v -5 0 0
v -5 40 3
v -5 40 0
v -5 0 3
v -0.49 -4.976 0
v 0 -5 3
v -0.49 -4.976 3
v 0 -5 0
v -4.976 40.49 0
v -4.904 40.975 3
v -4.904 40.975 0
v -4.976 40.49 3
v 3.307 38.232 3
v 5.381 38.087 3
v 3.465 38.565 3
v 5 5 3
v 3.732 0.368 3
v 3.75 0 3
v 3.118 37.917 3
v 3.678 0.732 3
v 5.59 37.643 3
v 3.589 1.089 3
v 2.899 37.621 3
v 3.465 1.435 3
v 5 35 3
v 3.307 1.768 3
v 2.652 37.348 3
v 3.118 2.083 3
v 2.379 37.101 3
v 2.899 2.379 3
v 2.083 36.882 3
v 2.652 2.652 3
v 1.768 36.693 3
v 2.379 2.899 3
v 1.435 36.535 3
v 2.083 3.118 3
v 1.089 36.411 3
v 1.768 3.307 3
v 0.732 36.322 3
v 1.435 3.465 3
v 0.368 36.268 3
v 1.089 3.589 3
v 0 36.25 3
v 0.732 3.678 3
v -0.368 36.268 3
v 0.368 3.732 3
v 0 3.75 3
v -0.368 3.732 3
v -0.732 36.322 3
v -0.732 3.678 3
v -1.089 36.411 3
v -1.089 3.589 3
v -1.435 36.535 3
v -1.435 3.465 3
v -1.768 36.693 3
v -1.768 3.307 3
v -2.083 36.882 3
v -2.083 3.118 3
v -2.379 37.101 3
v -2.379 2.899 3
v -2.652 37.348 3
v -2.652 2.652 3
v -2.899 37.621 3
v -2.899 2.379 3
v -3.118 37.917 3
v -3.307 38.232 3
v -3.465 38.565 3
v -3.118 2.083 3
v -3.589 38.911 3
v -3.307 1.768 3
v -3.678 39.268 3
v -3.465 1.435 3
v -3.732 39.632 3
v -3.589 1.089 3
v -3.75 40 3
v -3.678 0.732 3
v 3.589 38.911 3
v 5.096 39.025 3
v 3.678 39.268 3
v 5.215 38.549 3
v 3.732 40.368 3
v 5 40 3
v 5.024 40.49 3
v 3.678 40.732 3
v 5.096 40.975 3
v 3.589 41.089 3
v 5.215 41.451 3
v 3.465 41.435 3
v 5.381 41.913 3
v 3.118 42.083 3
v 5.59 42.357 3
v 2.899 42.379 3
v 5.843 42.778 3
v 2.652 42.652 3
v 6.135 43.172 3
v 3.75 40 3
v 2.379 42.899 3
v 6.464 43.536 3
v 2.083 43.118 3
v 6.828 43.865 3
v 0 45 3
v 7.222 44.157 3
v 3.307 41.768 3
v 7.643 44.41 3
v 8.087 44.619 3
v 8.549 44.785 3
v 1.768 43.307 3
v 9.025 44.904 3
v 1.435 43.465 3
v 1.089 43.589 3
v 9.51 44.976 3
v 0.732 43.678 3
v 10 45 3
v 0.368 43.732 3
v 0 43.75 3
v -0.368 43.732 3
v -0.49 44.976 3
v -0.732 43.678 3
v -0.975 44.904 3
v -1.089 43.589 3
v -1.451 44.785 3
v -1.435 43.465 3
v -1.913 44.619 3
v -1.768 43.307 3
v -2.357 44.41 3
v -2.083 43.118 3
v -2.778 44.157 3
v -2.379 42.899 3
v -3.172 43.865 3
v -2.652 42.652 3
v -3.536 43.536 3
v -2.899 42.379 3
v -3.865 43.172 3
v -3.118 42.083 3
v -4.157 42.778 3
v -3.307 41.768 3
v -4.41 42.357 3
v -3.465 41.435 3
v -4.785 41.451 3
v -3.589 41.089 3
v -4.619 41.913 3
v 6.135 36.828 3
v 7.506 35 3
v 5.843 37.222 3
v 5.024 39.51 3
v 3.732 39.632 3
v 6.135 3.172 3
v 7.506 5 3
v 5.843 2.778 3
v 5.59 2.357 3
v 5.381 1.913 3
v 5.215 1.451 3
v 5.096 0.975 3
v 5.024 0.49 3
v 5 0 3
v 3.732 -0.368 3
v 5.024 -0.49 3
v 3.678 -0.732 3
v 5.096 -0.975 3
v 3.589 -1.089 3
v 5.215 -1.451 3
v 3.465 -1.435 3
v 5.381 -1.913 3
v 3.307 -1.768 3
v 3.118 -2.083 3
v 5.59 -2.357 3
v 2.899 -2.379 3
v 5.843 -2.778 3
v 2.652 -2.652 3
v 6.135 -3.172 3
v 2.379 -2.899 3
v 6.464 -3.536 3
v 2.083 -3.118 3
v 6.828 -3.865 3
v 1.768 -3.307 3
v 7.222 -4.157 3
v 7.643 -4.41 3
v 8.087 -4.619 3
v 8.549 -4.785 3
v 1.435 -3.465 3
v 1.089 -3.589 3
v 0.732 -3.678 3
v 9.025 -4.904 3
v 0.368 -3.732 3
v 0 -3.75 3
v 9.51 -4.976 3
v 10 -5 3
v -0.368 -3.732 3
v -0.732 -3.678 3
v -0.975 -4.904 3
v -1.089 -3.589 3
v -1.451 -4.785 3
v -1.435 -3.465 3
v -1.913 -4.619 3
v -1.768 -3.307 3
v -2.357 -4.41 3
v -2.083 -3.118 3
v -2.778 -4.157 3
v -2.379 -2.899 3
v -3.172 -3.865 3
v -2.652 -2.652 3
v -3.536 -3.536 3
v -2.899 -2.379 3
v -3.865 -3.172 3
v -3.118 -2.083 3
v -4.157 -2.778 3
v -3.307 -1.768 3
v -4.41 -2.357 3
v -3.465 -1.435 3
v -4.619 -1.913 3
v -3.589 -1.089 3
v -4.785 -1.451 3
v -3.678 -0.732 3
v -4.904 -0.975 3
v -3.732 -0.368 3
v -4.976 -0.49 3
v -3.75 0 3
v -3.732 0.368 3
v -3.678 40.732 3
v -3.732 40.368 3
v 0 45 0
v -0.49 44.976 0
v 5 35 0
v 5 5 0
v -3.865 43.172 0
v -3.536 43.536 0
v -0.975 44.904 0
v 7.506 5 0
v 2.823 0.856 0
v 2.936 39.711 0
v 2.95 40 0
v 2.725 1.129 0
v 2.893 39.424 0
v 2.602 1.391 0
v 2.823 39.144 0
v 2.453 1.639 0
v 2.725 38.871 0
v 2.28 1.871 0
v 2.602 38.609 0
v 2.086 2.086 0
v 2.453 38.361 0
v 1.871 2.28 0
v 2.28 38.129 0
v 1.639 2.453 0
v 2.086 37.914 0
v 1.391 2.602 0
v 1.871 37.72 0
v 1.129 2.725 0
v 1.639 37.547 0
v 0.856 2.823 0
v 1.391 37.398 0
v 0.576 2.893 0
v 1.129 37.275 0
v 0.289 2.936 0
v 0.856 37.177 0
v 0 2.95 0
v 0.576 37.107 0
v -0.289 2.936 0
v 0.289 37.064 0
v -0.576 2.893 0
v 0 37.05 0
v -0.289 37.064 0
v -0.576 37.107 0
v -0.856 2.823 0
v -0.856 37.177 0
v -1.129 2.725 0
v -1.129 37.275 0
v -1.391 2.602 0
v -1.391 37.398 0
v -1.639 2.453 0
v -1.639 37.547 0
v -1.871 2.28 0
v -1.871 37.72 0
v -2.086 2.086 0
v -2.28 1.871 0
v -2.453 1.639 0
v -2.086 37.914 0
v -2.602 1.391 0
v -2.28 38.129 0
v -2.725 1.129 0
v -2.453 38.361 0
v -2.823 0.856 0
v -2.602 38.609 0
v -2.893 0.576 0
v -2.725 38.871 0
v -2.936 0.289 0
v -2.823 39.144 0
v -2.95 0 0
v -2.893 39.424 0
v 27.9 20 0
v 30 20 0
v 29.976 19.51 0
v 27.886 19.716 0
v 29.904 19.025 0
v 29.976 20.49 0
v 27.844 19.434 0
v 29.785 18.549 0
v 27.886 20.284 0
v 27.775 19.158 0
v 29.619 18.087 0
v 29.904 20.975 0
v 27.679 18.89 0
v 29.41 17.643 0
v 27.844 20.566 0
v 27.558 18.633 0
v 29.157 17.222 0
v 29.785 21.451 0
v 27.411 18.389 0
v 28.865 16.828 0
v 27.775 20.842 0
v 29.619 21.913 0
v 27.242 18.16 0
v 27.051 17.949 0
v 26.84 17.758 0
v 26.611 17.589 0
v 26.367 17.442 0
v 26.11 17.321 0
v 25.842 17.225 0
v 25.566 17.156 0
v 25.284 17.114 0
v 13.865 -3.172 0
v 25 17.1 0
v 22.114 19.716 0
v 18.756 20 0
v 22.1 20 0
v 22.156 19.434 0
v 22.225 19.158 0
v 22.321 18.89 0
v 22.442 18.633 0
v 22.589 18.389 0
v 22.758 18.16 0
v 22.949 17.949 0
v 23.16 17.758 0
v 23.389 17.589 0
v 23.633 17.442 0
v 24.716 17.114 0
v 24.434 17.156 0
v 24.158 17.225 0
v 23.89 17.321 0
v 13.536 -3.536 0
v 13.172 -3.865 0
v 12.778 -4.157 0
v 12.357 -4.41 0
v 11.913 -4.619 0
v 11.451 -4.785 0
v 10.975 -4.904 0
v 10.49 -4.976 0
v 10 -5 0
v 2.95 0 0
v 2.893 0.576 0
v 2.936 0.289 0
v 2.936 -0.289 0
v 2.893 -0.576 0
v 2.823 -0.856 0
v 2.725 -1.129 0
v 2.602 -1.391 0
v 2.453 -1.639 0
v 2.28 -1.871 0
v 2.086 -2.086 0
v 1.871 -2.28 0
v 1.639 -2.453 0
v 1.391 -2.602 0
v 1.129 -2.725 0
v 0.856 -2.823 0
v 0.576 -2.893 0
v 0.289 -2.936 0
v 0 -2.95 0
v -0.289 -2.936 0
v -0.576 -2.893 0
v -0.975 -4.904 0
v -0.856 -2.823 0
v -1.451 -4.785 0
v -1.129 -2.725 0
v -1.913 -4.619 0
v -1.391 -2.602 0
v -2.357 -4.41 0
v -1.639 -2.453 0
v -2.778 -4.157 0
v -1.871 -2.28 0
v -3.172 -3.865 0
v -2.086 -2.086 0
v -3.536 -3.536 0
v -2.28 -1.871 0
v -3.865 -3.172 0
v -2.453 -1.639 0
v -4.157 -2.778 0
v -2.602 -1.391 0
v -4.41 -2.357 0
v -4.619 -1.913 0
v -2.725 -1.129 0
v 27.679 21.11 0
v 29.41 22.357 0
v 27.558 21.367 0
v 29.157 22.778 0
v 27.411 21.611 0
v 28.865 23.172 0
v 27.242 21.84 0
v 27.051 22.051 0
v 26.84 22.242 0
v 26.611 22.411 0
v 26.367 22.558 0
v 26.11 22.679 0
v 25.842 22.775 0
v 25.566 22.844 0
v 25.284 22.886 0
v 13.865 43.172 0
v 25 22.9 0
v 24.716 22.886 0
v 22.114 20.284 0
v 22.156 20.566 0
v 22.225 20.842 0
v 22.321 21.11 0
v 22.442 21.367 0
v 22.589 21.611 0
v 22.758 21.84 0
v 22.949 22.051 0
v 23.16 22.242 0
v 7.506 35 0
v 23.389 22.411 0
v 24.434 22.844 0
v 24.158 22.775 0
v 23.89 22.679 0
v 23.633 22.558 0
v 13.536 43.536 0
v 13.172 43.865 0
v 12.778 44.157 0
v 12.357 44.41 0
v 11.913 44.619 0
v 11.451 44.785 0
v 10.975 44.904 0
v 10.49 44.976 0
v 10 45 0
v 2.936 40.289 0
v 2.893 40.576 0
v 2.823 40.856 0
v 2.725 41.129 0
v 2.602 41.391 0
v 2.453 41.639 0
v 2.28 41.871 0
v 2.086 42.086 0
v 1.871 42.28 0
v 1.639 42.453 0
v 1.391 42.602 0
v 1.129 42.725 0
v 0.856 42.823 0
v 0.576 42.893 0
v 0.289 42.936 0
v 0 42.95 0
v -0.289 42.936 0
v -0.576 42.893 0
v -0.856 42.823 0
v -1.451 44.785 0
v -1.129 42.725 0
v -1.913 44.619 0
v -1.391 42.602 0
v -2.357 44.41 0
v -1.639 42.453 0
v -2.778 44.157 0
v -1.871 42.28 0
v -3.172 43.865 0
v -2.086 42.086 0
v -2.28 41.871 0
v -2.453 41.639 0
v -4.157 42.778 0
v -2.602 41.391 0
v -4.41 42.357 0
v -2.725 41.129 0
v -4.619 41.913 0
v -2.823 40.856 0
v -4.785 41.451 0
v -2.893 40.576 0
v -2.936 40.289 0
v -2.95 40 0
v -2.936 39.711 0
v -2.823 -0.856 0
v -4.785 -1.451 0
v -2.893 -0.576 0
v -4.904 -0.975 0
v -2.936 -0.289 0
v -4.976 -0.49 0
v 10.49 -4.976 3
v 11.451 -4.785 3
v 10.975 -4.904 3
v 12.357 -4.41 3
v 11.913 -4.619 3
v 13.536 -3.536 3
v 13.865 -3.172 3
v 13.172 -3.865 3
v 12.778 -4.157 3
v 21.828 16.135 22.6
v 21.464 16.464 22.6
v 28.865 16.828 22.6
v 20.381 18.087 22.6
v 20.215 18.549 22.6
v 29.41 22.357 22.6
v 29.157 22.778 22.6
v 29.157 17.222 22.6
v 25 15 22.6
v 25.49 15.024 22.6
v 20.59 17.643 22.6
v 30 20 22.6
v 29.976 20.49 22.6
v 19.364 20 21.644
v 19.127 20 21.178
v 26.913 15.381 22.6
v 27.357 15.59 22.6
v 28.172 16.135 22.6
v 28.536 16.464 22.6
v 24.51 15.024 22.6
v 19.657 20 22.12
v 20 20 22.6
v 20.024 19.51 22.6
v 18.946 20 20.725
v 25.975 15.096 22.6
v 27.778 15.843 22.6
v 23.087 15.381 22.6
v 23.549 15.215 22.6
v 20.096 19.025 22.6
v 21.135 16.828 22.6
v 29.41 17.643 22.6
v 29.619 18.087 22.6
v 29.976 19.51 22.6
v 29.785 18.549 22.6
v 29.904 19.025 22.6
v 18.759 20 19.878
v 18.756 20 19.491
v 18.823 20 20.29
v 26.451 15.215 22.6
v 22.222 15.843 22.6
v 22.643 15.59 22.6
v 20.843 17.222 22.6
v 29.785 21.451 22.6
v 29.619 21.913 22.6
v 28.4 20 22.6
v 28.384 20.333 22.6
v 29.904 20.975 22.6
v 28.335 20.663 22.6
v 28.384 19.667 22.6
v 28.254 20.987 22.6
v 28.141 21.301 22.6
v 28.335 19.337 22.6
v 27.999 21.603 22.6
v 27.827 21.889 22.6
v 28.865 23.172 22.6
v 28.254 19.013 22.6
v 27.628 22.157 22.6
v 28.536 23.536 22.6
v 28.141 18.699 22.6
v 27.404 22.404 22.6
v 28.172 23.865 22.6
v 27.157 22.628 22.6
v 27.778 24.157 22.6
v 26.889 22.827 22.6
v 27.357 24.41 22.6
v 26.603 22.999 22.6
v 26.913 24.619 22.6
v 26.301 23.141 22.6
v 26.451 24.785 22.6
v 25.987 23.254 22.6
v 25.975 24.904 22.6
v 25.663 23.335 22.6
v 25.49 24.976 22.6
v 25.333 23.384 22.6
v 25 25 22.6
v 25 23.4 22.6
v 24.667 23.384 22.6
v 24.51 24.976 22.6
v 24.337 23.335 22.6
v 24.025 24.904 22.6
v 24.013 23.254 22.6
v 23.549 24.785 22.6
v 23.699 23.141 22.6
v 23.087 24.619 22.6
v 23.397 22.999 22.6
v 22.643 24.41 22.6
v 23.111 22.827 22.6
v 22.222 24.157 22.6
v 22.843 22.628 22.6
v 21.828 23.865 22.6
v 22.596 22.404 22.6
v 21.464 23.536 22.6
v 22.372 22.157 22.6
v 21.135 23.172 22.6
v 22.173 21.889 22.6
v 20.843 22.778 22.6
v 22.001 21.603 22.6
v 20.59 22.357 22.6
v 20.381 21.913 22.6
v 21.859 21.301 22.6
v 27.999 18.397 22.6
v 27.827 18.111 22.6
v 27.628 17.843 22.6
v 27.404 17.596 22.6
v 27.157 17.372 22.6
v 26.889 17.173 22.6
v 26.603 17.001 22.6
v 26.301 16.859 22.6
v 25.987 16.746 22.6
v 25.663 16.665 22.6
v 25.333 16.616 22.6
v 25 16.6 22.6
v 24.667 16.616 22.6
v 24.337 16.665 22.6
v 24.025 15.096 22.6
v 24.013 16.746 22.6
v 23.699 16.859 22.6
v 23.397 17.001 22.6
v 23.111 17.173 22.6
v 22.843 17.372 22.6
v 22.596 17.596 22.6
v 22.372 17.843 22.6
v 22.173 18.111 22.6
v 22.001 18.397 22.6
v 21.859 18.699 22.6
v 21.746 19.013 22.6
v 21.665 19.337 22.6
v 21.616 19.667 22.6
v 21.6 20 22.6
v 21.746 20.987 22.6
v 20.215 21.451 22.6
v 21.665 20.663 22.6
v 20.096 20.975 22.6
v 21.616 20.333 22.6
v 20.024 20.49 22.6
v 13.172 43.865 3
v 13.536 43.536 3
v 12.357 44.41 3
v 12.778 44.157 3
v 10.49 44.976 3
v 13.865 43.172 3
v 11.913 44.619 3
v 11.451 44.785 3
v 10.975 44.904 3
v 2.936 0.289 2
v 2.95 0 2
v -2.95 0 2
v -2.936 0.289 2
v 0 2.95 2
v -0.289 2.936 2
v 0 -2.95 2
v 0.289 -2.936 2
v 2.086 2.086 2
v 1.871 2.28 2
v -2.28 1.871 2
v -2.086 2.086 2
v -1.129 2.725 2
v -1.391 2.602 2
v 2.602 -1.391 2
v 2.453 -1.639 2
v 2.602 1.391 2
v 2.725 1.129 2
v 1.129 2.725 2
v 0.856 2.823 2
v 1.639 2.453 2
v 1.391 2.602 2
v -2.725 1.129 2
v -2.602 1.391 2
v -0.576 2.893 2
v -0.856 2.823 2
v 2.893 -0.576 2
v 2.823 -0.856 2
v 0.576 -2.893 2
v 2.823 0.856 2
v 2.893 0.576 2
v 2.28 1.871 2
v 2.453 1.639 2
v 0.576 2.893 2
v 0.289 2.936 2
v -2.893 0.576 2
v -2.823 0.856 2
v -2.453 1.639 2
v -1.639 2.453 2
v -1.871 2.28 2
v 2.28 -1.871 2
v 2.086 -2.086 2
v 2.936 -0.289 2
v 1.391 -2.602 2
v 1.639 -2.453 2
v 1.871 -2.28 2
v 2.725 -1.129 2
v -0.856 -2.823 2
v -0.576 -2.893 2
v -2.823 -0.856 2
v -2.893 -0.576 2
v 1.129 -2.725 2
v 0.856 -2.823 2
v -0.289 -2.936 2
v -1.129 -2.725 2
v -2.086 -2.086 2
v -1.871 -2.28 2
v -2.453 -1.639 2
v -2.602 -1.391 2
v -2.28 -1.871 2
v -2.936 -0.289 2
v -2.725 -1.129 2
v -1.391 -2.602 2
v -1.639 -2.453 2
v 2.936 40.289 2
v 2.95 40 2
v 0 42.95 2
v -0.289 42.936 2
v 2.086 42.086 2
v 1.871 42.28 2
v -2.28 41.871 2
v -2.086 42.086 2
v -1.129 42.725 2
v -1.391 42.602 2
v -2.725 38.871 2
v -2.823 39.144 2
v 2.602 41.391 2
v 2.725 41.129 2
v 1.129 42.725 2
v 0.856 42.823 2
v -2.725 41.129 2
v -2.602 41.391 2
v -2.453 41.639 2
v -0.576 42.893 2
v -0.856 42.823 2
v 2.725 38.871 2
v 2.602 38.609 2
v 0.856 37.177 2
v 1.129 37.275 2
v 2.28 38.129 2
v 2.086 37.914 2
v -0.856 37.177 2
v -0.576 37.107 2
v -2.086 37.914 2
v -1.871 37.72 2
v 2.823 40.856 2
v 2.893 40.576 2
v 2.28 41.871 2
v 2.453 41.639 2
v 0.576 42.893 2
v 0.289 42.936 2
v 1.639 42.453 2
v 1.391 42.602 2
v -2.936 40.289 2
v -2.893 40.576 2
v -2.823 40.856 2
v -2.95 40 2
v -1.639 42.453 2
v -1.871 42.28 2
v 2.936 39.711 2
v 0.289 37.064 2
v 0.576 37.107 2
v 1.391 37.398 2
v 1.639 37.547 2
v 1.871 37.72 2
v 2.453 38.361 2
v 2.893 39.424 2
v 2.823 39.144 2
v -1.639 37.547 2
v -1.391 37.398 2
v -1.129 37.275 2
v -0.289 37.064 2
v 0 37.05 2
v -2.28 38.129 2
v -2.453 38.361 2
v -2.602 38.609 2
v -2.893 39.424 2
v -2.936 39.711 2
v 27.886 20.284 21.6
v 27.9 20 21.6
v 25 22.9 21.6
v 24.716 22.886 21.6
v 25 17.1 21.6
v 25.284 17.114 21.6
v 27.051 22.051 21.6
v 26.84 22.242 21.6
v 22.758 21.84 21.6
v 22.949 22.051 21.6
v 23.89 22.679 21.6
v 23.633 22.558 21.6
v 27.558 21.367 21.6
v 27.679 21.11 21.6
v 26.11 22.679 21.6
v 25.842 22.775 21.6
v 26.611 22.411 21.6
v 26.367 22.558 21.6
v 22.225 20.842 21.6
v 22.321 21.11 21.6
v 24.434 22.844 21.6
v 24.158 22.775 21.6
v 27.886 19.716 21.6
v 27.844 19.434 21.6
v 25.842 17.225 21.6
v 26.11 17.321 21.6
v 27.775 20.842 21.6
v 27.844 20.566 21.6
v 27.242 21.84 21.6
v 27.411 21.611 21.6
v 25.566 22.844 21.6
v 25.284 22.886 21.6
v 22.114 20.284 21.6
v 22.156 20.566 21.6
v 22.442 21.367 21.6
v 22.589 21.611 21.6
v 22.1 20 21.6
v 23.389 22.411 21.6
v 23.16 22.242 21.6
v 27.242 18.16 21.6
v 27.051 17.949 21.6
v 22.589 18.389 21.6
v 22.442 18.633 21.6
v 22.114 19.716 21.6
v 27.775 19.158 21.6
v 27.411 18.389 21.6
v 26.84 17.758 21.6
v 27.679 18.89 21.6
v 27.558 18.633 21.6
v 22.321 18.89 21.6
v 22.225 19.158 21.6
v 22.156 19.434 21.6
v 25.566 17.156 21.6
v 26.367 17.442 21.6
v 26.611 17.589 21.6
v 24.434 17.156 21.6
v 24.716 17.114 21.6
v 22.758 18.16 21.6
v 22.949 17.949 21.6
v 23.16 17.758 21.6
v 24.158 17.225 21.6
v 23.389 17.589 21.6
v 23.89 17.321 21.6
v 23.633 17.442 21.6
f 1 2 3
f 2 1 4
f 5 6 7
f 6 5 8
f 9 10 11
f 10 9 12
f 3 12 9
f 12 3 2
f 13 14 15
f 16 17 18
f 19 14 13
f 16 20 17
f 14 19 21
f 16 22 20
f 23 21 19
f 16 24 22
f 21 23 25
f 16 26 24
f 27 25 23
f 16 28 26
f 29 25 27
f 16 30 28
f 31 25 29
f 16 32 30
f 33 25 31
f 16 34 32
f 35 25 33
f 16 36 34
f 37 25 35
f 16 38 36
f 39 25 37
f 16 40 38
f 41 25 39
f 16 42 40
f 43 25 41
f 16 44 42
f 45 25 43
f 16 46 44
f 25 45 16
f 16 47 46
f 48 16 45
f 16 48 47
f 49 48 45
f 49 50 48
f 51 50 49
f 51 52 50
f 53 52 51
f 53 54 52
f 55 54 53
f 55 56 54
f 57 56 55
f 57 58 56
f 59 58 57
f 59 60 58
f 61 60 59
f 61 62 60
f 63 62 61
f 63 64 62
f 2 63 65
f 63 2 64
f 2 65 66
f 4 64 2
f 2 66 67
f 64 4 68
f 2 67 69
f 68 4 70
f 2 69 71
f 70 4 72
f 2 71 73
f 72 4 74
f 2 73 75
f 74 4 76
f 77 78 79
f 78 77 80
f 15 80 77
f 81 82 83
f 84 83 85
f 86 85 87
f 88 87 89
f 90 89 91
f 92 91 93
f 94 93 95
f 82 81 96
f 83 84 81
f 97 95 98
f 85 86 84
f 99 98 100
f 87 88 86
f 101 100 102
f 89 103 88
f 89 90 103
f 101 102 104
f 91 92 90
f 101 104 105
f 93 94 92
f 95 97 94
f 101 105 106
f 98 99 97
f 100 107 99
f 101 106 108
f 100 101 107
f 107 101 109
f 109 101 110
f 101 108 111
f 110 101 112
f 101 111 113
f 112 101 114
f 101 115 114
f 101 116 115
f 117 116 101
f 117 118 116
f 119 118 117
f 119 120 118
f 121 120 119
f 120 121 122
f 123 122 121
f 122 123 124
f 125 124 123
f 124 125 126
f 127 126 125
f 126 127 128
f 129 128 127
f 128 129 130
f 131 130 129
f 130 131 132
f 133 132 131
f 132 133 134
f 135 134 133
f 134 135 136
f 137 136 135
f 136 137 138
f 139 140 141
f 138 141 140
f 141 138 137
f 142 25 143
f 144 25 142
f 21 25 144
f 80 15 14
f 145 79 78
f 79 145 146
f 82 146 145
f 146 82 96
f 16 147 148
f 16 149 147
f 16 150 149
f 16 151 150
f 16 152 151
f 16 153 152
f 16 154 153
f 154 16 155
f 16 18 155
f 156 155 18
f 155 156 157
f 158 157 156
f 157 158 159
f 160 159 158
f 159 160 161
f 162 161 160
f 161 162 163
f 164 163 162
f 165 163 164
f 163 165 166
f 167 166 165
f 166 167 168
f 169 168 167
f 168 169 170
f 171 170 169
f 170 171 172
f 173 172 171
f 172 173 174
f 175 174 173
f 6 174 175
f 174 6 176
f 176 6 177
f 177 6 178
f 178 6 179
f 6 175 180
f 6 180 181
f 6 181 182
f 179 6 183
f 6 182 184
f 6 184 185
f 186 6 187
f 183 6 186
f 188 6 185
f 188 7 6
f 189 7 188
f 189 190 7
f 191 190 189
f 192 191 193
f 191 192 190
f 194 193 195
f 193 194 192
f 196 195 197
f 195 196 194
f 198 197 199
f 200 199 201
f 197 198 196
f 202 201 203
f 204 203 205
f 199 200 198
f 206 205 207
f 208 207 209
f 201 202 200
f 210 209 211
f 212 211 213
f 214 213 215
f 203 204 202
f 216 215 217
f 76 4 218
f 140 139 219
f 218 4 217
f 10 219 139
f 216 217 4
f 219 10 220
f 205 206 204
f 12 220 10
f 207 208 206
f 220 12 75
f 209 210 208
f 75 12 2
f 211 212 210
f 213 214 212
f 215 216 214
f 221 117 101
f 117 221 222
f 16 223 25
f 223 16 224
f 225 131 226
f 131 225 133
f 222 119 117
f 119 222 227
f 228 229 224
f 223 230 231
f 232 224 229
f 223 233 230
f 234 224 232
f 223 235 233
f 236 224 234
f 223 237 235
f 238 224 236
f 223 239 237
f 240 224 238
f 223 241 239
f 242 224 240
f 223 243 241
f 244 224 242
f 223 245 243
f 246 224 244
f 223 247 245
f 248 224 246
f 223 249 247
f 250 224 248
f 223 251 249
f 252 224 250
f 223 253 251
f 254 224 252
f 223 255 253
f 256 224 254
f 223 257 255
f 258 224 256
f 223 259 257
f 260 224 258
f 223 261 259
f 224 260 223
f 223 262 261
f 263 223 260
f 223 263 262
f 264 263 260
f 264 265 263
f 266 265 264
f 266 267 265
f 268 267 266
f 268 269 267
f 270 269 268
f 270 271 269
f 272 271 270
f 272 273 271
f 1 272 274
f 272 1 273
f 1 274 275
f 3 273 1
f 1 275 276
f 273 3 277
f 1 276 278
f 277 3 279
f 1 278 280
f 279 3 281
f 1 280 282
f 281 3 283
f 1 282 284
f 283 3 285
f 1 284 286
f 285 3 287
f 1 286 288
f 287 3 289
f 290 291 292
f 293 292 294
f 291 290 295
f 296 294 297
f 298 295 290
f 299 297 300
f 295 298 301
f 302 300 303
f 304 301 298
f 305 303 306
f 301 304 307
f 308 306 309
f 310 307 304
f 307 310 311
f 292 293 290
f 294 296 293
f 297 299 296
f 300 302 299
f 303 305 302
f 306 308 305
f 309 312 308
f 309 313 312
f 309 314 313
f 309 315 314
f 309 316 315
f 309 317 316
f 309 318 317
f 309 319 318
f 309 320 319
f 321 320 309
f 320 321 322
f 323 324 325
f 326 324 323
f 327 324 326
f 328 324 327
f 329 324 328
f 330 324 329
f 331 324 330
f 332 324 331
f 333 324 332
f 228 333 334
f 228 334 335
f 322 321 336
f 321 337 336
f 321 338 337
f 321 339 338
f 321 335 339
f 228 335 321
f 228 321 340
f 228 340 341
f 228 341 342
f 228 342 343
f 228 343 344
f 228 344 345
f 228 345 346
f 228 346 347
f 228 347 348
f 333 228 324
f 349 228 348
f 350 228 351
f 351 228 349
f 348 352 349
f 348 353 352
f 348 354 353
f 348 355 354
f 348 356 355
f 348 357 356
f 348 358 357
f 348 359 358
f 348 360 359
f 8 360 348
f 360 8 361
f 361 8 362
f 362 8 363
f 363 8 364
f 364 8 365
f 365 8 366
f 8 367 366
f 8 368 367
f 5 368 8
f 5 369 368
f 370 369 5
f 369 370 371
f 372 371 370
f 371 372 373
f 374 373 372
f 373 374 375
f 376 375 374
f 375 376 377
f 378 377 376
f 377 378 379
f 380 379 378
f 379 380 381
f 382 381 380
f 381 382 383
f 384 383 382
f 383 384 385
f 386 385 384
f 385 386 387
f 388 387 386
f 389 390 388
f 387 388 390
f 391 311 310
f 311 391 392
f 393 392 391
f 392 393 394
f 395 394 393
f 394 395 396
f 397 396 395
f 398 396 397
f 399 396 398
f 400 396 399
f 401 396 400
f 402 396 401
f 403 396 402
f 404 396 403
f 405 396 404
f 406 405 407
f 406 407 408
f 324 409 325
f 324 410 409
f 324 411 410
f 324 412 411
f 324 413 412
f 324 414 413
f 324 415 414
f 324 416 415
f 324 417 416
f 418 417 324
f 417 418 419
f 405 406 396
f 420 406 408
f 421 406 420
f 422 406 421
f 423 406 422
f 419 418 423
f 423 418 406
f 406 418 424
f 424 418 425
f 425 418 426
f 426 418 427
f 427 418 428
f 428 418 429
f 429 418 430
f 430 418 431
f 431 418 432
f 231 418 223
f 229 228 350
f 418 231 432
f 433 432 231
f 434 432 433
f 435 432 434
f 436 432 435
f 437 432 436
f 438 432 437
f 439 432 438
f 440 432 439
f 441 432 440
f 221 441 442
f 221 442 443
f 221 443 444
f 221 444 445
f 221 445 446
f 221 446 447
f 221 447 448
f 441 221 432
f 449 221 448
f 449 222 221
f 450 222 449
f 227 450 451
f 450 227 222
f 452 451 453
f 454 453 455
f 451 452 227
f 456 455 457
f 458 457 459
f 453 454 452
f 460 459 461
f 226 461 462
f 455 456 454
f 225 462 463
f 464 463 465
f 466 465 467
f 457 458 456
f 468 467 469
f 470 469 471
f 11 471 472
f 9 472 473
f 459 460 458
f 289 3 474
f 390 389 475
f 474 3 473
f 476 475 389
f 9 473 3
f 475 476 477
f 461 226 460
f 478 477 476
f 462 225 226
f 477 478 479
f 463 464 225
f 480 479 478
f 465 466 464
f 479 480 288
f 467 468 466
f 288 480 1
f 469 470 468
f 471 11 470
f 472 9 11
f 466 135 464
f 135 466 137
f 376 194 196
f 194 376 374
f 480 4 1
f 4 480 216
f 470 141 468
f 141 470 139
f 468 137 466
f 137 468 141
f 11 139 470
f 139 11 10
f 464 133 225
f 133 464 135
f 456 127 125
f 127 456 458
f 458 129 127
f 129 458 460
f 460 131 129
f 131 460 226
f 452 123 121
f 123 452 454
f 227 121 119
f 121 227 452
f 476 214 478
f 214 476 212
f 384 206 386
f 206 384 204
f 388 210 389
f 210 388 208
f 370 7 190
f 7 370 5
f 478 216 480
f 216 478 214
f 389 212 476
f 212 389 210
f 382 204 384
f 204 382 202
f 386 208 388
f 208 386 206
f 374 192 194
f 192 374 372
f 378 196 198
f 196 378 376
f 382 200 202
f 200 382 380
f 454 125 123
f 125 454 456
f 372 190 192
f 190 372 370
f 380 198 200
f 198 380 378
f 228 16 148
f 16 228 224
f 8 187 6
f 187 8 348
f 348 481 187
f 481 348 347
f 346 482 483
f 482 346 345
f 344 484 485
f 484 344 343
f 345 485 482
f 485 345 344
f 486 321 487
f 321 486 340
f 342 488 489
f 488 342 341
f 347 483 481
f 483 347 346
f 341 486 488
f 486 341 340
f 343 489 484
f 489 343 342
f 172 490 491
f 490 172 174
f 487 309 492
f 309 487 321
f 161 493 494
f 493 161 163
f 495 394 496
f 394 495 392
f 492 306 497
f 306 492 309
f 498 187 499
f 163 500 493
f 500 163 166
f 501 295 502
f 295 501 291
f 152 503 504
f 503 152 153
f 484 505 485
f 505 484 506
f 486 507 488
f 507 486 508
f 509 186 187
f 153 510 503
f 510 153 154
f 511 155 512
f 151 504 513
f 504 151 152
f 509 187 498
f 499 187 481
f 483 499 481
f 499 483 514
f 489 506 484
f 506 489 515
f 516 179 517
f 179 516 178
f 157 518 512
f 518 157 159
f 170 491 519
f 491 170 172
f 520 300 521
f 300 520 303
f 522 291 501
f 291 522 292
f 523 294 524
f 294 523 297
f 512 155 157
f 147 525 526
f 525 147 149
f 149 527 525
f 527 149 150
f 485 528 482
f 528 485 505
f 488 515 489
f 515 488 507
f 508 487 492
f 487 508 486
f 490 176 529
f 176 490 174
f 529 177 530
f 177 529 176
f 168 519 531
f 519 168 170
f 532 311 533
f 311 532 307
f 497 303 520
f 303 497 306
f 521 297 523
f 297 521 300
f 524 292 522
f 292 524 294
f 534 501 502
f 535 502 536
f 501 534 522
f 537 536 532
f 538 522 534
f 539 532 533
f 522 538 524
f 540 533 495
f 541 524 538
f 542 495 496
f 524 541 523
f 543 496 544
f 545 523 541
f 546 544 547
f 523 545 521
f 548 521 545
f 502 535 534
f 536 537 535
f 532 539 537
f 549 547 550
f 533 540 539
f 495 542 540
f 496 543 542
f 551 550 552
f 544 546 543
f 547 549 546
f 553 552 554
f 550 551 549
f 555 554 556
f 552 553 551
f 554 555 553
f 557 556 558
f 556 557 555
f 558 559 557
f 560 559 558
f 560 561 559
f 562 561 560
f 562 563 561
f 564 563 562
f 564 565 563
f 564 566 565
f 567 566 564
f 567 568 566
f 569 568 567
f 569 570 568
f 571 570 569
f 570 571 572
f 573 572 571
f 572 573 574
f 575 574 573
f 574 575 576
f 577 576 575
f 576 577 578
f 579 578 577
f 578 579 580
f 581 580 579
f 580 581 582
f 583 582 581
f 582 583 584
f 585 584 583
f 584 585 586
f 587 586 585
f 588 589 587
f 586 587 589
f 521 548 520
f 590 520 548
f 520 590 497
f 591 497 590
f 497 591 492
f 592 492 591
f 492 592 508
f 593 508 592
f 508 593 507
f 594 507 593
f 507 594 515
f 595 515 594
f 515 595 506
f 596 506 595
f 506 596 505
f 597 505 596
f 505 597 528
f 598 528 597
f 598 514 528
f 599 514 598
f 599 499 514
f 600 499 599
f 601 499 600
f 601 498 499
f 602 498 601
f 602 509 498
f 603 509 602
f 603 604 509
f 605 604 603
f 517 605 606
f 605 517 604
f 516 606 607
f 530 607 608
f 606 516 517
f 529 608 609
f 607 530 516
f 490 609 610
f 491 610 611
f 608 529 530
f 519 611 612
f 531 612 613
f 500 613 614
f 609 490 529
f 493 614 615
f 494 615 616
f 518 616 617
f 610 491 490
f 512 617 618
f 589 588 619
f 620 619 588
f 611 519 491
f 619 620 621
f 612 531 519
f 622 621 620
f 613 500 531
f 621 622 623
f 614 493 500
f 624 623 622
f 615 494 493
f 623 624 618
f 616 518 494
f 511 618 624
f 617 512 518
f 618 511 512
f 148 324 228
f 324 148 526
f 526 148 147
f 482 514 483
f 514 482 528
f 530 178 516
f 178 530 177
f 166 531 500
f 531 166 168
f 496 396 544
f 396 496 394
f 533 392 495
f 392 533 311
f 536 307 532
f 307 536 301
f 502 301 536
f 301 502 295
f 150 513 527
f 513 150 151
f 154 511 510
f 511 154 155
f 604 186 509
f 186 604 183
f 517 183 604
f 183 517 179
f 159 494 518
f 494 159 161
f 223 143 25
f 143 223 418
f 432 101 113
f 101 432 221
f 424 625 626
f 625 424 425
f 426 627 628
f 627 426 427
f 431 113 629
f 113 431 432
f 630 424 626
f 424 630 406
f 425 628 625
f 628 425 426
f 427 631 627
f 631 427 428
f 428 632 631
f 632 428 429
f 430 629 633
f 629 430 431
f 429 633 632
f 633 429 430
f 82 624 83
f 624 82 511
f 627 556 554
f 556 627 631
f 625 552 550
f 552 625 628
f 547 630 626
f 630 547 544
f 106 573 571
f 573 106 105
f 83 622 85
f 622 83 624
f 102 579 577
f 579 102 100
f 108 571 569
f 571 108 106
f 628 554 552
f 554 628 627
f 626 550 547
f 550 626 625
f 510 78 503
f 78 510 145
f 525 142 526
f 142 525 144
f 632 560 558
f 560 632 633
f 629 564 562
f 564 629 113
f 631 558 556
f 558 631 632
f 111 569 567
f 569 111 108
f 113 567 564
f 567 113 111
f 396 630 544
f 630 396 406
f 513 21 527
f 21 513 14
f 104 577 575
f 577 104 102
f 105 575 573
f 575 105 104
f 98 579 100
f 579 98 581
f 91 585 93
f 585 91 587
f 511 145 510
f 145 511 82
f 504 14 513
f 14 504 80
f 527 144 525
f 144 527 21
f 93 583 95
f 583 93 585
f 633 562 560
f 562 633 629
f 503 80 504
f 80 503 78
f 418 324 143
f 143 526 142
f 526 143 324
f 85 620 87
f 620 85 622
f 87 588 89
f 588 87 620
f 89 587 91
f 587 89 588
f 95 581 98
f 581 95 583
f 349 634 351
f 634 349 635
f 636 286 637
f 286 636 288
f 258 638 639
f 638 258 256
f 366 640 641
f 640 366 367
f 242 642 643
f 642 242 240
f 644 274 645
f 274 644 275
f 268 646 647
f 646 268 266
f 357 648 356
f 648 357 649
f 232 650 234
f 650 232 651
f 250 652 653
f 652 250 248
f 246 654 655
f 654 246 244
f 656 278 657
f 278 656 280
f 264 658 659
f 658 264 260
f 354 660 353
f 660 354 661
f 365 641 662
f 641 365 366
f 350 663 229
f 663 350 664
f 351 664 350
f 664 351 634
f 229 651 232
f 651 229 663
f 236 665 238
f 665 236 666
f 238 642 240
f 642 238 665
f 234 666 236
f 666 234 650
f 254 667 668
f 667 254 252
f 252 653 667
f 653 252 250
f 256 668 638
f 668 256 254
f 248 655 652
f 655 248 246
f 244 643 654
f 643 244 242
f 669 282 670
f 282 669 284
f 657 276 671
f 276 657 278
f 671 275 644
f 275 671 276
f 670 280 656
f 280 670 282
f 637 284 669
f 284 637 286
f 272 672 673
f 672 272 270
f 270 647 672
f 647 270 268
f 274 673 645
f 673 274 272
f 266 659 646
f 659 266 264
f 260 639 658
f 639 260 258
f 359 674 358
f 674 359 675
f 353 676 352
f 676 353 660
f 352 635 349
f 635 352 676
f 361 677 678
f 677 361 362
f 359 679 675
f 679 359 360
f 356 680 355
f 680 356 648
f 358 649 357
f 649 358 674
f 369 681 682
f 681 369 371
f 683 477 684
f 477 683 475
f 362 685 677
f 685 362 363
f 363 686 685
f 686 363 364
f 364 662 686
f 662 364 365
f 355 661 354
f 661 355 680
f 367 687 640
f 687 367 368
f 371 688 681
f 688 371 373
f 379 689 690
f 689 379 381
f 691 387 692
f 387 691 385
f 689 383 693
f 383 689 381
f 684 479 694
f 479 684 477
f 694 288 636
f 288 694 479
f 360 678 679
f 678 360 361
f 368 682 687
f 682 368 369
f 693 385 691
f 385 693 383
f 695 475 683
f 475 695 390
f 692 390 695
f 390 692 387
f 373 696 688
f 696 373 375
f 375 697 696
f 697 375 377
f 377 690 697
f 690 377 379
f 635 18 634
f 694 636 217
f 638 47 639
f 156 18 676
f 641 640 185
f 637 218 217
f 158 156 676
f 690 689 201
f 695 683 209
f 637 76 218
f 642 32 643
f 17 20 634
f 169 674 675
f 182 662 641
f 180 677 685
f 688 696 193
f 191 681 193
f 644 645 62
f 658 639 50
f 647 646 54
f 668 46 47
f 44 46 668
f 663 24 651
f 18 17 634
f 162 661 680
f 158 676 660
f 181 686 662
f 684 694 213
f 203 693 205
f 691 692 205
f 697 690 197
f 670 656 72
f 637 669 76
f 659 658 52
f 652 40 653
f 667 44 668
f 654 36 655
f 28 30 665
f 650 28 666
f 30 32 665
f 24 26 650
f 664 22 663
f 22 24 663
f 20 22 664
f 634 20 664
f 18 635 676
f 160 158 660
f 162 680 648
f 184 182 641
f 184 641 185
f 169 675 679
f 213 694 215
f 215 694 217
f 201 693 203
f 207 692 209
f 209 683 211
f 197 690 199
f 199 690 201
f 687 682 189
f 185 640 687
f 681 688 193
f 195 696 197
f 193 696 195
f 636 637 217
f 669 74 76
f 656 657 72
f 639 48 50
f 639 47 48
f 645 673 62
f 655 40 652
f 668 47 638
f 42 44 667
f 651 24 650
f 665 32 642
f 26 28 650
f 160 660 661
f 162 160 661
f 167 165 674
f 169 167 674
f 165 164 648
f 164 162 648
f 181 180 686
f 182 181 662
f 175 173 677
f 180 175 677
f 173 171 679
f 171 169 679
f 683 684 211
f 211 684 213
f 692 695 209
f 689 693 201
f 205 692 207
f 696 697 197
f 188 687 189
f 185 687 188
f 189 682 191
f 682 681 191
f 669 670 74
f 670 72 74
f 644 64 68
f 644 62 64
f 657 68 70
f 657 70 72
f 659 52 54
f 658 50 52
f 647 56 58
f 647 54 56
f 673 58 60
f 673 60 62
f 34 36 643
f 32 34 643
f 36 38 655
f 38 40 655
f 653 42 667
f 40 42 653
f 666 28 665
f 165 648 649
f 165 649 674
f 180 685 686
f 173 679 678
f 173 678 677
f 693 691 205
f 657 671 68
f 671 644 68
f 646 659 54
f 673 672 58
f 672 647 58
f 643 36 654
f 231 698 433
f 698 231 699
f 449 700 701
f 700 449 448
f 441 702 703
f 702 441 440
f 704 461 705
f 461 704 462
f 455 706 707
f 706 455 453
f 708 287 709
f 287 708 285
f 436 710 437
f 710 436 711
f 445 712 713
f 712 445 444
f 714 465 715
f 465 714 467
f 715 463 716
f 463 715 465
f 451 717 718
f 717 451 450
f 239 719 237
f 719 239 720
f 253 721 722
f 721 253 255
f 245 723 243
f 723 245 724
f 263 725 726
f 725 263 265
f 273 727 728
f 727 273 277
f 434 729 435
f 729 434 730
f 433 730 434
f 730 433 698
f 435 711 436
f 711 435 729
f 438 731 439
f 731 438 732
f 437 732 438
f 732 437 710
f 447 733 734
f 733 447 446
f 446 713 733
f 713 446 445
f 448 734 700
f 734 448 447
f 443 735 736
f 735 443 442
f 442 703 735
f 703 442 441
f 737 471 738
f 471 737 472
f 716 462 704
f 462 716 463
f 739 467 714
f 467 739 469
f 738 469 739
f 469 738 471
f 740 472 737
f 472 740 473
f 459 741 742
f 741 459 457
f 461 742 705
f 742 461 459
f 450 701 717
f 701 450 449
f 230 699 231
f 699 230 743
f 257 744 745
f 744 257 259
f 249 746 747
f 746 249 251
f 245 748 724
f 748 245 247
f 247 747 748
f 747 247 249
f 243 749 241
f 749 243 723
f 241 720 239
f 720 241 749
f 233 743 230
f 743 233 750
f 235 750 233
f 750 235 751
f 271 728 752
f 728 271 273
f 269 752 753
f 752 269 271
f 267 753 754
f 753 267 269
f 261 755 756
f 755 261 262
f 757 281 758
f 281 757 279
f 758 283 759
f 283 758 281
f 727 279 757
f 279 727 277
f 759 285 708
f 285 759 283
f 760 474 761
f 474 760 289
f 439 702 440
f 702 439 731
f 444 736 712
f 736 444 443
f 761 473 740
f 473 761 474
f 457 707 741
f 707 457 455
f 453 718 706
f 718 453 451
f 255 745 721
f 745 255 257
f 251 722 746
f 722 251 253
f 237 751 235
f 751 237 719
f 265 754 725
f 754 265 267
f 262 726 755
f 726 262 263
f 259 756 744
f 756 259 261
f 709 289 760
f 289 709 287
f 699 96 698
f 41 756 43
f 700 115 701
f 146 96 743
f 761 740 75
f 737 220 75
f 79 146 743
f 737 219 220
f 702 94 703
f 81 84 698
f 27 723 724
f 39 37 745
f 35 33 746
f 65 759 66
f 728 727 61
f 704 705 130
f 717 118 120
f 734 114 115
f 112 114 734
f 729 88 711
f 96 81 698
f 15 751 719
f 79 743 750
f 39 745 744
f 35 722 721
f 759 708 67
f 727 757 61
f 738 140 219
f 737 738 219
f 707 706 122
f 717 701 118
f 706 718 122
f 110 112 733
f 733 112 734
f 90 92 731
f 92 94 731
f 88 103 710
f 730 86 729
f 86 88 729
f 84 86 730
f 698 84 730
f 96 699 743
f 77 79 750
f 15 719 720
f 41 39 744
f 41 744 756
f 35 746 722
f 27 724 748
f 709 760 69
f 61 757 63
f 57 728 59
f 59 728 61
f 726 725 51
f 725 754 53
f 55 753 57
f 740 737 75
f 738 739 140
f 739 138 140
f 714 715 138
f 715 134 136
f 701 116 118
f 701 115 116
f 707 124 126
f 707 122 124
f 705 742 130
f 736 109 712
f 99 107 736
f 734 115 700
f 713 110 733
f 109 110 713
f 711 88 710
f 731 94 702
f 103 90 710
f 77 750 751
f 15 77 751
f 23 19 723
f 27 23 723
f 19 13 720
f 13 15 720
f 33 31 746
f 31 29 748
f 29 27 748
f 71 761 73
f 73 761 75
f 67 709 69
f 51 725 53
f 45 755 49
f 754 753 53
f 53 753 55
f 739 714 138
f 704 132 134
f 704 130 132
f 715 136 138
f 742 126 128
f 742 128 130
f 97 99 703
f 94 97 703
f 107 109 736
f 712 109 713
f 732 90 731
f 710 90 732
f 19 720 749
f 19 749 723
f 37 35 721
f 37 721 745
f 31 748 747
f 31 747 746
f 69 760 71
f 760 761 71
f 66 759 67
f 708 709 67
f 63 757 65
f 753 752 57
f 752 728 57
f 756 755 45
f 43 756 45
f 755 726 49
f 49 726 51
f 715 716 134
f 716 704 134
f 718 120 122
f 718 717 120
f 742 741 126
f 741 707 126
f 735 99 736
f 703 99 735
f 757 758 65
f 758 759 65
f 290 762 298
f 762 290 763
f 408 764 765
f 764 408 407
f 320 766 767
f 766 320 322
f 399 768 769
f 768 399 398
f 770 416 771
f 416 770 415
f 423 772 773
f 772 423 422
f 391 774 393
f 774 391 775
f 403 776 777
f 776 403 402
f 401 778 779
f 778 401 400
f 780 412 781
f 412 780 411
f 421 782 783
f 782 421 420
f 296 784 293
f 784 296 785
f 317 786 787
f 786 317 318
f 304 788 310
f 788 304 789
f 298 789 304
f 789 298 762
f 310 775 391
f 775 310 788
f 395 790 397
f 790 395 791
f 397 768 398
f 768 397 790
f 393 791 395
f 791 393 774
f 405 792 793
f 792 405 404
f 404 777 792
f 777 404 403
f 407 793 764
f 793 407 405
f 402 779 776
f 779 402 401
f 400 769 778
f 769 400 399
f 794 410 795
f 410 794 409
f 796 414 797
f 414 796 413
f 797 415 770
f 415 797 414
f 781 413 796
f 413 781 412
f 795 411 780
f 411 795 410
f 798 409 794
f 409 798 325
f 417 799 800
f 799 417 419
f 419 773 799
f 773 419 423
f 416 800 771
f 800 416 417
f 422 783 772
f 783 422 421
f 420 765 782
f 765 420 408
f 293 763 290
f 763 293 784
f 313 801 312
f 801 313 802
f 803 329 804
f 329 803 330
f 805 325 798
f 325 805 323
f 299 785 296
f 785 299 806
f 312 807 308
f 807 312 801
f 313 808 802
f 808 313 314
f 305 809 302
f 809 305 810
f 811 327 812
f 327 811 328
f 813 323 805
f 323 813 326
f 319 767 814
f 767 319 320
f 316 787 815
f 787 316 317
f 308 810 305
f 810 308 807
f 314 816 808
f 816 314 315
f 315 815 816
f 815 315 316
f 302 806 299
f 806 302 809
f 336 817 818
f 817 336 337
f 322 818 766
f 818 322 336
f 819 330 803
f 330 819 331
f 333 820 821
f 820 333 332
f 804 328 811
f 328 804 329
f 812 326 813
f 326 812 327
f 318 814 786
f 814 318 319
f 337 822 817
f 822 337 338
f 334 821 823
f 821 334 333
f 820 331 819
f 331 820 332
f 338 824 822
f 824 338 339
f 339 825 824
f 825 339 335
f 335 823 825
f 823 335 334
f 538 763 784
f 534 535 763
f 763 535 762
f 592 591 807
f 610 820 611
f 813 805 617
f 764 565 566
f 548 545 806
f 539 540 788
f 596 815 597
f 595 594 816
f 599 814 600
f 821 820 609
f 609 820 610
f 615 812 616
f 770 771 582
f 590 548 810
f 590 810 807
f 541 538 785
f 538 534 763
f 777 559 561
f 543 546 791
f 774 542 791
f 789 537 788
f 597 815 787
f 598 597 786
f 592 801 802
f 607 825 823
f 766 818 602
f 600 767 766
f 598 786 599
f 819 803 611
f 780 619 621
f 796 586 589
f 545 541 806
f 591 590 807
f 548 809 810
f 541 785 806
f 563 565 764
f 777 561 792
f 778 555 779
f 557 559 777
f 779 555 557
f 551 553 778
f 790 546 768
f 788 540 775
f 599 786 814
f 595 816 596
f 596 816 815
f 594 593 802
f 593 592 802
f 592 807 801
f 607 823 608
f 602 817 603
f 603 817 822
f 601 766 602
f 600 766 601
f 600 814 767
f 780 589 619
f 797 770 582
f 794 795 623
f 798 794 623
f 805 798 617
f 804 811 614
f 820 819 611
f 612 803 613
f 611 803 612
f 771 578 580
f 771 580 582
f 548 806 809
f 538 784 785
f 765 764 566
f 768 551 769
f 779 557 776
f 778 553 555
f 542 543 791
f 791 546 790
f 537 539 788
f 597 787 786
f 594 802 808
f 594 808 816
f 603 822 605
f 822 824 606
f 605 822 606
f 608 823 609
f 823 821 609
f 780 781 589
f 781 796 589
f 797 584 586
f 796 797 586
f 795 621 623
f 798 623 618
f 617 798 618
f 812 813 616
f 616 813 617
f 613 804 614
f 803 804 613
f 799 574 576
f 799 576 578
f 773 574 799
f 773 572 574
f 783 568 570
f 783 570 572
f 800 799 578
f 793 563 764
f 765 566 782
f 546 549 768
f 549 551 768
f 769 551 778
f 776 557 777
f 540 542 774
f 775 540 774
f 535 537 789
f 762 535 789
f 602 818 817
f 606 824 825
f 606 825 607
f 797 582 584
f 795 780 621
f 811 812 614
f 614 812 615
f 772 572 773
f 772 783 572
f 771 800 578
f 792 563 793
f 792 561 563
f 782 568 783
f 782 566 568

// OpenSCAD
$fn = 64;

base_height = 3;
base_thickness = 10;
base_offset = 10;
spacer_height = 22.6;
mounting_hole_dia_1 = 5.9;
mounting_hole_dia_2 = 7.5;
mounting_hole_dia_slide = 5.8;

module spacer() {
    difference() {
        union() {
            hull() {
                cylinder(d = base_thickness, h = base_height);
                translate([0, 40, 0])
                    cylinder(d = base_thickness, h = base_height);
            }
            
            hull() {
                cylinder(d = base_thickness, h = base_height);
                translate([base_offset, 0, 0])
                    cylinder(d = base_thickness, h = base_height);
            }

            hull() {
                translate([base_offset, 0, 0])
                    cylinder(d = base_thickness, h = base_height);
                translate([25, 20, 0])
                    cylinder(d = base_thickness, h = spacer_height);
            }

            hull() {
                translate([0, 40, 0])
                    cylinder(d = base_thickness, h = base_height);
                translate([base_offset, 40, 0])
                    cylinder(d = base_thickness, h = base_height);
            }

            hull()  {
                translate([base_offset, 40, 0])
                    cylinder(d = base_thickness, h = base_height);
                translate([25, 20, 0])
                    cylinder(d = base_thickness, h = spacer_height);
            }
        }
        cylinder(d = mounting_hole_dia_1, h = base_height);
        translate([0, 0, base_height - 1])
            cylinder(d2 = mounting_hole_dia_2, d1=mounting_hole_dia_1, h = 1);
        translate([0, 40, 0])
            cylinder(d = mounting_hole_dia_1, h = base_height);
        translate([0, 40, base_height - 1])
            cylinder(d2 = mounting_hole_dia_2, d1=mounting_hole_dia_1, h = 1);
        translate([25, 20, 0])
            cylinder(d = mounting_hole_dia_slide, h = spacer_height);
        translate([25, 20, spacer_height - 1])
            cylinder(d1 = mounting_hole_dia_slide, d2= mounting_hole_dia_slide + 1, h = 1);
    }
}

spacer();
